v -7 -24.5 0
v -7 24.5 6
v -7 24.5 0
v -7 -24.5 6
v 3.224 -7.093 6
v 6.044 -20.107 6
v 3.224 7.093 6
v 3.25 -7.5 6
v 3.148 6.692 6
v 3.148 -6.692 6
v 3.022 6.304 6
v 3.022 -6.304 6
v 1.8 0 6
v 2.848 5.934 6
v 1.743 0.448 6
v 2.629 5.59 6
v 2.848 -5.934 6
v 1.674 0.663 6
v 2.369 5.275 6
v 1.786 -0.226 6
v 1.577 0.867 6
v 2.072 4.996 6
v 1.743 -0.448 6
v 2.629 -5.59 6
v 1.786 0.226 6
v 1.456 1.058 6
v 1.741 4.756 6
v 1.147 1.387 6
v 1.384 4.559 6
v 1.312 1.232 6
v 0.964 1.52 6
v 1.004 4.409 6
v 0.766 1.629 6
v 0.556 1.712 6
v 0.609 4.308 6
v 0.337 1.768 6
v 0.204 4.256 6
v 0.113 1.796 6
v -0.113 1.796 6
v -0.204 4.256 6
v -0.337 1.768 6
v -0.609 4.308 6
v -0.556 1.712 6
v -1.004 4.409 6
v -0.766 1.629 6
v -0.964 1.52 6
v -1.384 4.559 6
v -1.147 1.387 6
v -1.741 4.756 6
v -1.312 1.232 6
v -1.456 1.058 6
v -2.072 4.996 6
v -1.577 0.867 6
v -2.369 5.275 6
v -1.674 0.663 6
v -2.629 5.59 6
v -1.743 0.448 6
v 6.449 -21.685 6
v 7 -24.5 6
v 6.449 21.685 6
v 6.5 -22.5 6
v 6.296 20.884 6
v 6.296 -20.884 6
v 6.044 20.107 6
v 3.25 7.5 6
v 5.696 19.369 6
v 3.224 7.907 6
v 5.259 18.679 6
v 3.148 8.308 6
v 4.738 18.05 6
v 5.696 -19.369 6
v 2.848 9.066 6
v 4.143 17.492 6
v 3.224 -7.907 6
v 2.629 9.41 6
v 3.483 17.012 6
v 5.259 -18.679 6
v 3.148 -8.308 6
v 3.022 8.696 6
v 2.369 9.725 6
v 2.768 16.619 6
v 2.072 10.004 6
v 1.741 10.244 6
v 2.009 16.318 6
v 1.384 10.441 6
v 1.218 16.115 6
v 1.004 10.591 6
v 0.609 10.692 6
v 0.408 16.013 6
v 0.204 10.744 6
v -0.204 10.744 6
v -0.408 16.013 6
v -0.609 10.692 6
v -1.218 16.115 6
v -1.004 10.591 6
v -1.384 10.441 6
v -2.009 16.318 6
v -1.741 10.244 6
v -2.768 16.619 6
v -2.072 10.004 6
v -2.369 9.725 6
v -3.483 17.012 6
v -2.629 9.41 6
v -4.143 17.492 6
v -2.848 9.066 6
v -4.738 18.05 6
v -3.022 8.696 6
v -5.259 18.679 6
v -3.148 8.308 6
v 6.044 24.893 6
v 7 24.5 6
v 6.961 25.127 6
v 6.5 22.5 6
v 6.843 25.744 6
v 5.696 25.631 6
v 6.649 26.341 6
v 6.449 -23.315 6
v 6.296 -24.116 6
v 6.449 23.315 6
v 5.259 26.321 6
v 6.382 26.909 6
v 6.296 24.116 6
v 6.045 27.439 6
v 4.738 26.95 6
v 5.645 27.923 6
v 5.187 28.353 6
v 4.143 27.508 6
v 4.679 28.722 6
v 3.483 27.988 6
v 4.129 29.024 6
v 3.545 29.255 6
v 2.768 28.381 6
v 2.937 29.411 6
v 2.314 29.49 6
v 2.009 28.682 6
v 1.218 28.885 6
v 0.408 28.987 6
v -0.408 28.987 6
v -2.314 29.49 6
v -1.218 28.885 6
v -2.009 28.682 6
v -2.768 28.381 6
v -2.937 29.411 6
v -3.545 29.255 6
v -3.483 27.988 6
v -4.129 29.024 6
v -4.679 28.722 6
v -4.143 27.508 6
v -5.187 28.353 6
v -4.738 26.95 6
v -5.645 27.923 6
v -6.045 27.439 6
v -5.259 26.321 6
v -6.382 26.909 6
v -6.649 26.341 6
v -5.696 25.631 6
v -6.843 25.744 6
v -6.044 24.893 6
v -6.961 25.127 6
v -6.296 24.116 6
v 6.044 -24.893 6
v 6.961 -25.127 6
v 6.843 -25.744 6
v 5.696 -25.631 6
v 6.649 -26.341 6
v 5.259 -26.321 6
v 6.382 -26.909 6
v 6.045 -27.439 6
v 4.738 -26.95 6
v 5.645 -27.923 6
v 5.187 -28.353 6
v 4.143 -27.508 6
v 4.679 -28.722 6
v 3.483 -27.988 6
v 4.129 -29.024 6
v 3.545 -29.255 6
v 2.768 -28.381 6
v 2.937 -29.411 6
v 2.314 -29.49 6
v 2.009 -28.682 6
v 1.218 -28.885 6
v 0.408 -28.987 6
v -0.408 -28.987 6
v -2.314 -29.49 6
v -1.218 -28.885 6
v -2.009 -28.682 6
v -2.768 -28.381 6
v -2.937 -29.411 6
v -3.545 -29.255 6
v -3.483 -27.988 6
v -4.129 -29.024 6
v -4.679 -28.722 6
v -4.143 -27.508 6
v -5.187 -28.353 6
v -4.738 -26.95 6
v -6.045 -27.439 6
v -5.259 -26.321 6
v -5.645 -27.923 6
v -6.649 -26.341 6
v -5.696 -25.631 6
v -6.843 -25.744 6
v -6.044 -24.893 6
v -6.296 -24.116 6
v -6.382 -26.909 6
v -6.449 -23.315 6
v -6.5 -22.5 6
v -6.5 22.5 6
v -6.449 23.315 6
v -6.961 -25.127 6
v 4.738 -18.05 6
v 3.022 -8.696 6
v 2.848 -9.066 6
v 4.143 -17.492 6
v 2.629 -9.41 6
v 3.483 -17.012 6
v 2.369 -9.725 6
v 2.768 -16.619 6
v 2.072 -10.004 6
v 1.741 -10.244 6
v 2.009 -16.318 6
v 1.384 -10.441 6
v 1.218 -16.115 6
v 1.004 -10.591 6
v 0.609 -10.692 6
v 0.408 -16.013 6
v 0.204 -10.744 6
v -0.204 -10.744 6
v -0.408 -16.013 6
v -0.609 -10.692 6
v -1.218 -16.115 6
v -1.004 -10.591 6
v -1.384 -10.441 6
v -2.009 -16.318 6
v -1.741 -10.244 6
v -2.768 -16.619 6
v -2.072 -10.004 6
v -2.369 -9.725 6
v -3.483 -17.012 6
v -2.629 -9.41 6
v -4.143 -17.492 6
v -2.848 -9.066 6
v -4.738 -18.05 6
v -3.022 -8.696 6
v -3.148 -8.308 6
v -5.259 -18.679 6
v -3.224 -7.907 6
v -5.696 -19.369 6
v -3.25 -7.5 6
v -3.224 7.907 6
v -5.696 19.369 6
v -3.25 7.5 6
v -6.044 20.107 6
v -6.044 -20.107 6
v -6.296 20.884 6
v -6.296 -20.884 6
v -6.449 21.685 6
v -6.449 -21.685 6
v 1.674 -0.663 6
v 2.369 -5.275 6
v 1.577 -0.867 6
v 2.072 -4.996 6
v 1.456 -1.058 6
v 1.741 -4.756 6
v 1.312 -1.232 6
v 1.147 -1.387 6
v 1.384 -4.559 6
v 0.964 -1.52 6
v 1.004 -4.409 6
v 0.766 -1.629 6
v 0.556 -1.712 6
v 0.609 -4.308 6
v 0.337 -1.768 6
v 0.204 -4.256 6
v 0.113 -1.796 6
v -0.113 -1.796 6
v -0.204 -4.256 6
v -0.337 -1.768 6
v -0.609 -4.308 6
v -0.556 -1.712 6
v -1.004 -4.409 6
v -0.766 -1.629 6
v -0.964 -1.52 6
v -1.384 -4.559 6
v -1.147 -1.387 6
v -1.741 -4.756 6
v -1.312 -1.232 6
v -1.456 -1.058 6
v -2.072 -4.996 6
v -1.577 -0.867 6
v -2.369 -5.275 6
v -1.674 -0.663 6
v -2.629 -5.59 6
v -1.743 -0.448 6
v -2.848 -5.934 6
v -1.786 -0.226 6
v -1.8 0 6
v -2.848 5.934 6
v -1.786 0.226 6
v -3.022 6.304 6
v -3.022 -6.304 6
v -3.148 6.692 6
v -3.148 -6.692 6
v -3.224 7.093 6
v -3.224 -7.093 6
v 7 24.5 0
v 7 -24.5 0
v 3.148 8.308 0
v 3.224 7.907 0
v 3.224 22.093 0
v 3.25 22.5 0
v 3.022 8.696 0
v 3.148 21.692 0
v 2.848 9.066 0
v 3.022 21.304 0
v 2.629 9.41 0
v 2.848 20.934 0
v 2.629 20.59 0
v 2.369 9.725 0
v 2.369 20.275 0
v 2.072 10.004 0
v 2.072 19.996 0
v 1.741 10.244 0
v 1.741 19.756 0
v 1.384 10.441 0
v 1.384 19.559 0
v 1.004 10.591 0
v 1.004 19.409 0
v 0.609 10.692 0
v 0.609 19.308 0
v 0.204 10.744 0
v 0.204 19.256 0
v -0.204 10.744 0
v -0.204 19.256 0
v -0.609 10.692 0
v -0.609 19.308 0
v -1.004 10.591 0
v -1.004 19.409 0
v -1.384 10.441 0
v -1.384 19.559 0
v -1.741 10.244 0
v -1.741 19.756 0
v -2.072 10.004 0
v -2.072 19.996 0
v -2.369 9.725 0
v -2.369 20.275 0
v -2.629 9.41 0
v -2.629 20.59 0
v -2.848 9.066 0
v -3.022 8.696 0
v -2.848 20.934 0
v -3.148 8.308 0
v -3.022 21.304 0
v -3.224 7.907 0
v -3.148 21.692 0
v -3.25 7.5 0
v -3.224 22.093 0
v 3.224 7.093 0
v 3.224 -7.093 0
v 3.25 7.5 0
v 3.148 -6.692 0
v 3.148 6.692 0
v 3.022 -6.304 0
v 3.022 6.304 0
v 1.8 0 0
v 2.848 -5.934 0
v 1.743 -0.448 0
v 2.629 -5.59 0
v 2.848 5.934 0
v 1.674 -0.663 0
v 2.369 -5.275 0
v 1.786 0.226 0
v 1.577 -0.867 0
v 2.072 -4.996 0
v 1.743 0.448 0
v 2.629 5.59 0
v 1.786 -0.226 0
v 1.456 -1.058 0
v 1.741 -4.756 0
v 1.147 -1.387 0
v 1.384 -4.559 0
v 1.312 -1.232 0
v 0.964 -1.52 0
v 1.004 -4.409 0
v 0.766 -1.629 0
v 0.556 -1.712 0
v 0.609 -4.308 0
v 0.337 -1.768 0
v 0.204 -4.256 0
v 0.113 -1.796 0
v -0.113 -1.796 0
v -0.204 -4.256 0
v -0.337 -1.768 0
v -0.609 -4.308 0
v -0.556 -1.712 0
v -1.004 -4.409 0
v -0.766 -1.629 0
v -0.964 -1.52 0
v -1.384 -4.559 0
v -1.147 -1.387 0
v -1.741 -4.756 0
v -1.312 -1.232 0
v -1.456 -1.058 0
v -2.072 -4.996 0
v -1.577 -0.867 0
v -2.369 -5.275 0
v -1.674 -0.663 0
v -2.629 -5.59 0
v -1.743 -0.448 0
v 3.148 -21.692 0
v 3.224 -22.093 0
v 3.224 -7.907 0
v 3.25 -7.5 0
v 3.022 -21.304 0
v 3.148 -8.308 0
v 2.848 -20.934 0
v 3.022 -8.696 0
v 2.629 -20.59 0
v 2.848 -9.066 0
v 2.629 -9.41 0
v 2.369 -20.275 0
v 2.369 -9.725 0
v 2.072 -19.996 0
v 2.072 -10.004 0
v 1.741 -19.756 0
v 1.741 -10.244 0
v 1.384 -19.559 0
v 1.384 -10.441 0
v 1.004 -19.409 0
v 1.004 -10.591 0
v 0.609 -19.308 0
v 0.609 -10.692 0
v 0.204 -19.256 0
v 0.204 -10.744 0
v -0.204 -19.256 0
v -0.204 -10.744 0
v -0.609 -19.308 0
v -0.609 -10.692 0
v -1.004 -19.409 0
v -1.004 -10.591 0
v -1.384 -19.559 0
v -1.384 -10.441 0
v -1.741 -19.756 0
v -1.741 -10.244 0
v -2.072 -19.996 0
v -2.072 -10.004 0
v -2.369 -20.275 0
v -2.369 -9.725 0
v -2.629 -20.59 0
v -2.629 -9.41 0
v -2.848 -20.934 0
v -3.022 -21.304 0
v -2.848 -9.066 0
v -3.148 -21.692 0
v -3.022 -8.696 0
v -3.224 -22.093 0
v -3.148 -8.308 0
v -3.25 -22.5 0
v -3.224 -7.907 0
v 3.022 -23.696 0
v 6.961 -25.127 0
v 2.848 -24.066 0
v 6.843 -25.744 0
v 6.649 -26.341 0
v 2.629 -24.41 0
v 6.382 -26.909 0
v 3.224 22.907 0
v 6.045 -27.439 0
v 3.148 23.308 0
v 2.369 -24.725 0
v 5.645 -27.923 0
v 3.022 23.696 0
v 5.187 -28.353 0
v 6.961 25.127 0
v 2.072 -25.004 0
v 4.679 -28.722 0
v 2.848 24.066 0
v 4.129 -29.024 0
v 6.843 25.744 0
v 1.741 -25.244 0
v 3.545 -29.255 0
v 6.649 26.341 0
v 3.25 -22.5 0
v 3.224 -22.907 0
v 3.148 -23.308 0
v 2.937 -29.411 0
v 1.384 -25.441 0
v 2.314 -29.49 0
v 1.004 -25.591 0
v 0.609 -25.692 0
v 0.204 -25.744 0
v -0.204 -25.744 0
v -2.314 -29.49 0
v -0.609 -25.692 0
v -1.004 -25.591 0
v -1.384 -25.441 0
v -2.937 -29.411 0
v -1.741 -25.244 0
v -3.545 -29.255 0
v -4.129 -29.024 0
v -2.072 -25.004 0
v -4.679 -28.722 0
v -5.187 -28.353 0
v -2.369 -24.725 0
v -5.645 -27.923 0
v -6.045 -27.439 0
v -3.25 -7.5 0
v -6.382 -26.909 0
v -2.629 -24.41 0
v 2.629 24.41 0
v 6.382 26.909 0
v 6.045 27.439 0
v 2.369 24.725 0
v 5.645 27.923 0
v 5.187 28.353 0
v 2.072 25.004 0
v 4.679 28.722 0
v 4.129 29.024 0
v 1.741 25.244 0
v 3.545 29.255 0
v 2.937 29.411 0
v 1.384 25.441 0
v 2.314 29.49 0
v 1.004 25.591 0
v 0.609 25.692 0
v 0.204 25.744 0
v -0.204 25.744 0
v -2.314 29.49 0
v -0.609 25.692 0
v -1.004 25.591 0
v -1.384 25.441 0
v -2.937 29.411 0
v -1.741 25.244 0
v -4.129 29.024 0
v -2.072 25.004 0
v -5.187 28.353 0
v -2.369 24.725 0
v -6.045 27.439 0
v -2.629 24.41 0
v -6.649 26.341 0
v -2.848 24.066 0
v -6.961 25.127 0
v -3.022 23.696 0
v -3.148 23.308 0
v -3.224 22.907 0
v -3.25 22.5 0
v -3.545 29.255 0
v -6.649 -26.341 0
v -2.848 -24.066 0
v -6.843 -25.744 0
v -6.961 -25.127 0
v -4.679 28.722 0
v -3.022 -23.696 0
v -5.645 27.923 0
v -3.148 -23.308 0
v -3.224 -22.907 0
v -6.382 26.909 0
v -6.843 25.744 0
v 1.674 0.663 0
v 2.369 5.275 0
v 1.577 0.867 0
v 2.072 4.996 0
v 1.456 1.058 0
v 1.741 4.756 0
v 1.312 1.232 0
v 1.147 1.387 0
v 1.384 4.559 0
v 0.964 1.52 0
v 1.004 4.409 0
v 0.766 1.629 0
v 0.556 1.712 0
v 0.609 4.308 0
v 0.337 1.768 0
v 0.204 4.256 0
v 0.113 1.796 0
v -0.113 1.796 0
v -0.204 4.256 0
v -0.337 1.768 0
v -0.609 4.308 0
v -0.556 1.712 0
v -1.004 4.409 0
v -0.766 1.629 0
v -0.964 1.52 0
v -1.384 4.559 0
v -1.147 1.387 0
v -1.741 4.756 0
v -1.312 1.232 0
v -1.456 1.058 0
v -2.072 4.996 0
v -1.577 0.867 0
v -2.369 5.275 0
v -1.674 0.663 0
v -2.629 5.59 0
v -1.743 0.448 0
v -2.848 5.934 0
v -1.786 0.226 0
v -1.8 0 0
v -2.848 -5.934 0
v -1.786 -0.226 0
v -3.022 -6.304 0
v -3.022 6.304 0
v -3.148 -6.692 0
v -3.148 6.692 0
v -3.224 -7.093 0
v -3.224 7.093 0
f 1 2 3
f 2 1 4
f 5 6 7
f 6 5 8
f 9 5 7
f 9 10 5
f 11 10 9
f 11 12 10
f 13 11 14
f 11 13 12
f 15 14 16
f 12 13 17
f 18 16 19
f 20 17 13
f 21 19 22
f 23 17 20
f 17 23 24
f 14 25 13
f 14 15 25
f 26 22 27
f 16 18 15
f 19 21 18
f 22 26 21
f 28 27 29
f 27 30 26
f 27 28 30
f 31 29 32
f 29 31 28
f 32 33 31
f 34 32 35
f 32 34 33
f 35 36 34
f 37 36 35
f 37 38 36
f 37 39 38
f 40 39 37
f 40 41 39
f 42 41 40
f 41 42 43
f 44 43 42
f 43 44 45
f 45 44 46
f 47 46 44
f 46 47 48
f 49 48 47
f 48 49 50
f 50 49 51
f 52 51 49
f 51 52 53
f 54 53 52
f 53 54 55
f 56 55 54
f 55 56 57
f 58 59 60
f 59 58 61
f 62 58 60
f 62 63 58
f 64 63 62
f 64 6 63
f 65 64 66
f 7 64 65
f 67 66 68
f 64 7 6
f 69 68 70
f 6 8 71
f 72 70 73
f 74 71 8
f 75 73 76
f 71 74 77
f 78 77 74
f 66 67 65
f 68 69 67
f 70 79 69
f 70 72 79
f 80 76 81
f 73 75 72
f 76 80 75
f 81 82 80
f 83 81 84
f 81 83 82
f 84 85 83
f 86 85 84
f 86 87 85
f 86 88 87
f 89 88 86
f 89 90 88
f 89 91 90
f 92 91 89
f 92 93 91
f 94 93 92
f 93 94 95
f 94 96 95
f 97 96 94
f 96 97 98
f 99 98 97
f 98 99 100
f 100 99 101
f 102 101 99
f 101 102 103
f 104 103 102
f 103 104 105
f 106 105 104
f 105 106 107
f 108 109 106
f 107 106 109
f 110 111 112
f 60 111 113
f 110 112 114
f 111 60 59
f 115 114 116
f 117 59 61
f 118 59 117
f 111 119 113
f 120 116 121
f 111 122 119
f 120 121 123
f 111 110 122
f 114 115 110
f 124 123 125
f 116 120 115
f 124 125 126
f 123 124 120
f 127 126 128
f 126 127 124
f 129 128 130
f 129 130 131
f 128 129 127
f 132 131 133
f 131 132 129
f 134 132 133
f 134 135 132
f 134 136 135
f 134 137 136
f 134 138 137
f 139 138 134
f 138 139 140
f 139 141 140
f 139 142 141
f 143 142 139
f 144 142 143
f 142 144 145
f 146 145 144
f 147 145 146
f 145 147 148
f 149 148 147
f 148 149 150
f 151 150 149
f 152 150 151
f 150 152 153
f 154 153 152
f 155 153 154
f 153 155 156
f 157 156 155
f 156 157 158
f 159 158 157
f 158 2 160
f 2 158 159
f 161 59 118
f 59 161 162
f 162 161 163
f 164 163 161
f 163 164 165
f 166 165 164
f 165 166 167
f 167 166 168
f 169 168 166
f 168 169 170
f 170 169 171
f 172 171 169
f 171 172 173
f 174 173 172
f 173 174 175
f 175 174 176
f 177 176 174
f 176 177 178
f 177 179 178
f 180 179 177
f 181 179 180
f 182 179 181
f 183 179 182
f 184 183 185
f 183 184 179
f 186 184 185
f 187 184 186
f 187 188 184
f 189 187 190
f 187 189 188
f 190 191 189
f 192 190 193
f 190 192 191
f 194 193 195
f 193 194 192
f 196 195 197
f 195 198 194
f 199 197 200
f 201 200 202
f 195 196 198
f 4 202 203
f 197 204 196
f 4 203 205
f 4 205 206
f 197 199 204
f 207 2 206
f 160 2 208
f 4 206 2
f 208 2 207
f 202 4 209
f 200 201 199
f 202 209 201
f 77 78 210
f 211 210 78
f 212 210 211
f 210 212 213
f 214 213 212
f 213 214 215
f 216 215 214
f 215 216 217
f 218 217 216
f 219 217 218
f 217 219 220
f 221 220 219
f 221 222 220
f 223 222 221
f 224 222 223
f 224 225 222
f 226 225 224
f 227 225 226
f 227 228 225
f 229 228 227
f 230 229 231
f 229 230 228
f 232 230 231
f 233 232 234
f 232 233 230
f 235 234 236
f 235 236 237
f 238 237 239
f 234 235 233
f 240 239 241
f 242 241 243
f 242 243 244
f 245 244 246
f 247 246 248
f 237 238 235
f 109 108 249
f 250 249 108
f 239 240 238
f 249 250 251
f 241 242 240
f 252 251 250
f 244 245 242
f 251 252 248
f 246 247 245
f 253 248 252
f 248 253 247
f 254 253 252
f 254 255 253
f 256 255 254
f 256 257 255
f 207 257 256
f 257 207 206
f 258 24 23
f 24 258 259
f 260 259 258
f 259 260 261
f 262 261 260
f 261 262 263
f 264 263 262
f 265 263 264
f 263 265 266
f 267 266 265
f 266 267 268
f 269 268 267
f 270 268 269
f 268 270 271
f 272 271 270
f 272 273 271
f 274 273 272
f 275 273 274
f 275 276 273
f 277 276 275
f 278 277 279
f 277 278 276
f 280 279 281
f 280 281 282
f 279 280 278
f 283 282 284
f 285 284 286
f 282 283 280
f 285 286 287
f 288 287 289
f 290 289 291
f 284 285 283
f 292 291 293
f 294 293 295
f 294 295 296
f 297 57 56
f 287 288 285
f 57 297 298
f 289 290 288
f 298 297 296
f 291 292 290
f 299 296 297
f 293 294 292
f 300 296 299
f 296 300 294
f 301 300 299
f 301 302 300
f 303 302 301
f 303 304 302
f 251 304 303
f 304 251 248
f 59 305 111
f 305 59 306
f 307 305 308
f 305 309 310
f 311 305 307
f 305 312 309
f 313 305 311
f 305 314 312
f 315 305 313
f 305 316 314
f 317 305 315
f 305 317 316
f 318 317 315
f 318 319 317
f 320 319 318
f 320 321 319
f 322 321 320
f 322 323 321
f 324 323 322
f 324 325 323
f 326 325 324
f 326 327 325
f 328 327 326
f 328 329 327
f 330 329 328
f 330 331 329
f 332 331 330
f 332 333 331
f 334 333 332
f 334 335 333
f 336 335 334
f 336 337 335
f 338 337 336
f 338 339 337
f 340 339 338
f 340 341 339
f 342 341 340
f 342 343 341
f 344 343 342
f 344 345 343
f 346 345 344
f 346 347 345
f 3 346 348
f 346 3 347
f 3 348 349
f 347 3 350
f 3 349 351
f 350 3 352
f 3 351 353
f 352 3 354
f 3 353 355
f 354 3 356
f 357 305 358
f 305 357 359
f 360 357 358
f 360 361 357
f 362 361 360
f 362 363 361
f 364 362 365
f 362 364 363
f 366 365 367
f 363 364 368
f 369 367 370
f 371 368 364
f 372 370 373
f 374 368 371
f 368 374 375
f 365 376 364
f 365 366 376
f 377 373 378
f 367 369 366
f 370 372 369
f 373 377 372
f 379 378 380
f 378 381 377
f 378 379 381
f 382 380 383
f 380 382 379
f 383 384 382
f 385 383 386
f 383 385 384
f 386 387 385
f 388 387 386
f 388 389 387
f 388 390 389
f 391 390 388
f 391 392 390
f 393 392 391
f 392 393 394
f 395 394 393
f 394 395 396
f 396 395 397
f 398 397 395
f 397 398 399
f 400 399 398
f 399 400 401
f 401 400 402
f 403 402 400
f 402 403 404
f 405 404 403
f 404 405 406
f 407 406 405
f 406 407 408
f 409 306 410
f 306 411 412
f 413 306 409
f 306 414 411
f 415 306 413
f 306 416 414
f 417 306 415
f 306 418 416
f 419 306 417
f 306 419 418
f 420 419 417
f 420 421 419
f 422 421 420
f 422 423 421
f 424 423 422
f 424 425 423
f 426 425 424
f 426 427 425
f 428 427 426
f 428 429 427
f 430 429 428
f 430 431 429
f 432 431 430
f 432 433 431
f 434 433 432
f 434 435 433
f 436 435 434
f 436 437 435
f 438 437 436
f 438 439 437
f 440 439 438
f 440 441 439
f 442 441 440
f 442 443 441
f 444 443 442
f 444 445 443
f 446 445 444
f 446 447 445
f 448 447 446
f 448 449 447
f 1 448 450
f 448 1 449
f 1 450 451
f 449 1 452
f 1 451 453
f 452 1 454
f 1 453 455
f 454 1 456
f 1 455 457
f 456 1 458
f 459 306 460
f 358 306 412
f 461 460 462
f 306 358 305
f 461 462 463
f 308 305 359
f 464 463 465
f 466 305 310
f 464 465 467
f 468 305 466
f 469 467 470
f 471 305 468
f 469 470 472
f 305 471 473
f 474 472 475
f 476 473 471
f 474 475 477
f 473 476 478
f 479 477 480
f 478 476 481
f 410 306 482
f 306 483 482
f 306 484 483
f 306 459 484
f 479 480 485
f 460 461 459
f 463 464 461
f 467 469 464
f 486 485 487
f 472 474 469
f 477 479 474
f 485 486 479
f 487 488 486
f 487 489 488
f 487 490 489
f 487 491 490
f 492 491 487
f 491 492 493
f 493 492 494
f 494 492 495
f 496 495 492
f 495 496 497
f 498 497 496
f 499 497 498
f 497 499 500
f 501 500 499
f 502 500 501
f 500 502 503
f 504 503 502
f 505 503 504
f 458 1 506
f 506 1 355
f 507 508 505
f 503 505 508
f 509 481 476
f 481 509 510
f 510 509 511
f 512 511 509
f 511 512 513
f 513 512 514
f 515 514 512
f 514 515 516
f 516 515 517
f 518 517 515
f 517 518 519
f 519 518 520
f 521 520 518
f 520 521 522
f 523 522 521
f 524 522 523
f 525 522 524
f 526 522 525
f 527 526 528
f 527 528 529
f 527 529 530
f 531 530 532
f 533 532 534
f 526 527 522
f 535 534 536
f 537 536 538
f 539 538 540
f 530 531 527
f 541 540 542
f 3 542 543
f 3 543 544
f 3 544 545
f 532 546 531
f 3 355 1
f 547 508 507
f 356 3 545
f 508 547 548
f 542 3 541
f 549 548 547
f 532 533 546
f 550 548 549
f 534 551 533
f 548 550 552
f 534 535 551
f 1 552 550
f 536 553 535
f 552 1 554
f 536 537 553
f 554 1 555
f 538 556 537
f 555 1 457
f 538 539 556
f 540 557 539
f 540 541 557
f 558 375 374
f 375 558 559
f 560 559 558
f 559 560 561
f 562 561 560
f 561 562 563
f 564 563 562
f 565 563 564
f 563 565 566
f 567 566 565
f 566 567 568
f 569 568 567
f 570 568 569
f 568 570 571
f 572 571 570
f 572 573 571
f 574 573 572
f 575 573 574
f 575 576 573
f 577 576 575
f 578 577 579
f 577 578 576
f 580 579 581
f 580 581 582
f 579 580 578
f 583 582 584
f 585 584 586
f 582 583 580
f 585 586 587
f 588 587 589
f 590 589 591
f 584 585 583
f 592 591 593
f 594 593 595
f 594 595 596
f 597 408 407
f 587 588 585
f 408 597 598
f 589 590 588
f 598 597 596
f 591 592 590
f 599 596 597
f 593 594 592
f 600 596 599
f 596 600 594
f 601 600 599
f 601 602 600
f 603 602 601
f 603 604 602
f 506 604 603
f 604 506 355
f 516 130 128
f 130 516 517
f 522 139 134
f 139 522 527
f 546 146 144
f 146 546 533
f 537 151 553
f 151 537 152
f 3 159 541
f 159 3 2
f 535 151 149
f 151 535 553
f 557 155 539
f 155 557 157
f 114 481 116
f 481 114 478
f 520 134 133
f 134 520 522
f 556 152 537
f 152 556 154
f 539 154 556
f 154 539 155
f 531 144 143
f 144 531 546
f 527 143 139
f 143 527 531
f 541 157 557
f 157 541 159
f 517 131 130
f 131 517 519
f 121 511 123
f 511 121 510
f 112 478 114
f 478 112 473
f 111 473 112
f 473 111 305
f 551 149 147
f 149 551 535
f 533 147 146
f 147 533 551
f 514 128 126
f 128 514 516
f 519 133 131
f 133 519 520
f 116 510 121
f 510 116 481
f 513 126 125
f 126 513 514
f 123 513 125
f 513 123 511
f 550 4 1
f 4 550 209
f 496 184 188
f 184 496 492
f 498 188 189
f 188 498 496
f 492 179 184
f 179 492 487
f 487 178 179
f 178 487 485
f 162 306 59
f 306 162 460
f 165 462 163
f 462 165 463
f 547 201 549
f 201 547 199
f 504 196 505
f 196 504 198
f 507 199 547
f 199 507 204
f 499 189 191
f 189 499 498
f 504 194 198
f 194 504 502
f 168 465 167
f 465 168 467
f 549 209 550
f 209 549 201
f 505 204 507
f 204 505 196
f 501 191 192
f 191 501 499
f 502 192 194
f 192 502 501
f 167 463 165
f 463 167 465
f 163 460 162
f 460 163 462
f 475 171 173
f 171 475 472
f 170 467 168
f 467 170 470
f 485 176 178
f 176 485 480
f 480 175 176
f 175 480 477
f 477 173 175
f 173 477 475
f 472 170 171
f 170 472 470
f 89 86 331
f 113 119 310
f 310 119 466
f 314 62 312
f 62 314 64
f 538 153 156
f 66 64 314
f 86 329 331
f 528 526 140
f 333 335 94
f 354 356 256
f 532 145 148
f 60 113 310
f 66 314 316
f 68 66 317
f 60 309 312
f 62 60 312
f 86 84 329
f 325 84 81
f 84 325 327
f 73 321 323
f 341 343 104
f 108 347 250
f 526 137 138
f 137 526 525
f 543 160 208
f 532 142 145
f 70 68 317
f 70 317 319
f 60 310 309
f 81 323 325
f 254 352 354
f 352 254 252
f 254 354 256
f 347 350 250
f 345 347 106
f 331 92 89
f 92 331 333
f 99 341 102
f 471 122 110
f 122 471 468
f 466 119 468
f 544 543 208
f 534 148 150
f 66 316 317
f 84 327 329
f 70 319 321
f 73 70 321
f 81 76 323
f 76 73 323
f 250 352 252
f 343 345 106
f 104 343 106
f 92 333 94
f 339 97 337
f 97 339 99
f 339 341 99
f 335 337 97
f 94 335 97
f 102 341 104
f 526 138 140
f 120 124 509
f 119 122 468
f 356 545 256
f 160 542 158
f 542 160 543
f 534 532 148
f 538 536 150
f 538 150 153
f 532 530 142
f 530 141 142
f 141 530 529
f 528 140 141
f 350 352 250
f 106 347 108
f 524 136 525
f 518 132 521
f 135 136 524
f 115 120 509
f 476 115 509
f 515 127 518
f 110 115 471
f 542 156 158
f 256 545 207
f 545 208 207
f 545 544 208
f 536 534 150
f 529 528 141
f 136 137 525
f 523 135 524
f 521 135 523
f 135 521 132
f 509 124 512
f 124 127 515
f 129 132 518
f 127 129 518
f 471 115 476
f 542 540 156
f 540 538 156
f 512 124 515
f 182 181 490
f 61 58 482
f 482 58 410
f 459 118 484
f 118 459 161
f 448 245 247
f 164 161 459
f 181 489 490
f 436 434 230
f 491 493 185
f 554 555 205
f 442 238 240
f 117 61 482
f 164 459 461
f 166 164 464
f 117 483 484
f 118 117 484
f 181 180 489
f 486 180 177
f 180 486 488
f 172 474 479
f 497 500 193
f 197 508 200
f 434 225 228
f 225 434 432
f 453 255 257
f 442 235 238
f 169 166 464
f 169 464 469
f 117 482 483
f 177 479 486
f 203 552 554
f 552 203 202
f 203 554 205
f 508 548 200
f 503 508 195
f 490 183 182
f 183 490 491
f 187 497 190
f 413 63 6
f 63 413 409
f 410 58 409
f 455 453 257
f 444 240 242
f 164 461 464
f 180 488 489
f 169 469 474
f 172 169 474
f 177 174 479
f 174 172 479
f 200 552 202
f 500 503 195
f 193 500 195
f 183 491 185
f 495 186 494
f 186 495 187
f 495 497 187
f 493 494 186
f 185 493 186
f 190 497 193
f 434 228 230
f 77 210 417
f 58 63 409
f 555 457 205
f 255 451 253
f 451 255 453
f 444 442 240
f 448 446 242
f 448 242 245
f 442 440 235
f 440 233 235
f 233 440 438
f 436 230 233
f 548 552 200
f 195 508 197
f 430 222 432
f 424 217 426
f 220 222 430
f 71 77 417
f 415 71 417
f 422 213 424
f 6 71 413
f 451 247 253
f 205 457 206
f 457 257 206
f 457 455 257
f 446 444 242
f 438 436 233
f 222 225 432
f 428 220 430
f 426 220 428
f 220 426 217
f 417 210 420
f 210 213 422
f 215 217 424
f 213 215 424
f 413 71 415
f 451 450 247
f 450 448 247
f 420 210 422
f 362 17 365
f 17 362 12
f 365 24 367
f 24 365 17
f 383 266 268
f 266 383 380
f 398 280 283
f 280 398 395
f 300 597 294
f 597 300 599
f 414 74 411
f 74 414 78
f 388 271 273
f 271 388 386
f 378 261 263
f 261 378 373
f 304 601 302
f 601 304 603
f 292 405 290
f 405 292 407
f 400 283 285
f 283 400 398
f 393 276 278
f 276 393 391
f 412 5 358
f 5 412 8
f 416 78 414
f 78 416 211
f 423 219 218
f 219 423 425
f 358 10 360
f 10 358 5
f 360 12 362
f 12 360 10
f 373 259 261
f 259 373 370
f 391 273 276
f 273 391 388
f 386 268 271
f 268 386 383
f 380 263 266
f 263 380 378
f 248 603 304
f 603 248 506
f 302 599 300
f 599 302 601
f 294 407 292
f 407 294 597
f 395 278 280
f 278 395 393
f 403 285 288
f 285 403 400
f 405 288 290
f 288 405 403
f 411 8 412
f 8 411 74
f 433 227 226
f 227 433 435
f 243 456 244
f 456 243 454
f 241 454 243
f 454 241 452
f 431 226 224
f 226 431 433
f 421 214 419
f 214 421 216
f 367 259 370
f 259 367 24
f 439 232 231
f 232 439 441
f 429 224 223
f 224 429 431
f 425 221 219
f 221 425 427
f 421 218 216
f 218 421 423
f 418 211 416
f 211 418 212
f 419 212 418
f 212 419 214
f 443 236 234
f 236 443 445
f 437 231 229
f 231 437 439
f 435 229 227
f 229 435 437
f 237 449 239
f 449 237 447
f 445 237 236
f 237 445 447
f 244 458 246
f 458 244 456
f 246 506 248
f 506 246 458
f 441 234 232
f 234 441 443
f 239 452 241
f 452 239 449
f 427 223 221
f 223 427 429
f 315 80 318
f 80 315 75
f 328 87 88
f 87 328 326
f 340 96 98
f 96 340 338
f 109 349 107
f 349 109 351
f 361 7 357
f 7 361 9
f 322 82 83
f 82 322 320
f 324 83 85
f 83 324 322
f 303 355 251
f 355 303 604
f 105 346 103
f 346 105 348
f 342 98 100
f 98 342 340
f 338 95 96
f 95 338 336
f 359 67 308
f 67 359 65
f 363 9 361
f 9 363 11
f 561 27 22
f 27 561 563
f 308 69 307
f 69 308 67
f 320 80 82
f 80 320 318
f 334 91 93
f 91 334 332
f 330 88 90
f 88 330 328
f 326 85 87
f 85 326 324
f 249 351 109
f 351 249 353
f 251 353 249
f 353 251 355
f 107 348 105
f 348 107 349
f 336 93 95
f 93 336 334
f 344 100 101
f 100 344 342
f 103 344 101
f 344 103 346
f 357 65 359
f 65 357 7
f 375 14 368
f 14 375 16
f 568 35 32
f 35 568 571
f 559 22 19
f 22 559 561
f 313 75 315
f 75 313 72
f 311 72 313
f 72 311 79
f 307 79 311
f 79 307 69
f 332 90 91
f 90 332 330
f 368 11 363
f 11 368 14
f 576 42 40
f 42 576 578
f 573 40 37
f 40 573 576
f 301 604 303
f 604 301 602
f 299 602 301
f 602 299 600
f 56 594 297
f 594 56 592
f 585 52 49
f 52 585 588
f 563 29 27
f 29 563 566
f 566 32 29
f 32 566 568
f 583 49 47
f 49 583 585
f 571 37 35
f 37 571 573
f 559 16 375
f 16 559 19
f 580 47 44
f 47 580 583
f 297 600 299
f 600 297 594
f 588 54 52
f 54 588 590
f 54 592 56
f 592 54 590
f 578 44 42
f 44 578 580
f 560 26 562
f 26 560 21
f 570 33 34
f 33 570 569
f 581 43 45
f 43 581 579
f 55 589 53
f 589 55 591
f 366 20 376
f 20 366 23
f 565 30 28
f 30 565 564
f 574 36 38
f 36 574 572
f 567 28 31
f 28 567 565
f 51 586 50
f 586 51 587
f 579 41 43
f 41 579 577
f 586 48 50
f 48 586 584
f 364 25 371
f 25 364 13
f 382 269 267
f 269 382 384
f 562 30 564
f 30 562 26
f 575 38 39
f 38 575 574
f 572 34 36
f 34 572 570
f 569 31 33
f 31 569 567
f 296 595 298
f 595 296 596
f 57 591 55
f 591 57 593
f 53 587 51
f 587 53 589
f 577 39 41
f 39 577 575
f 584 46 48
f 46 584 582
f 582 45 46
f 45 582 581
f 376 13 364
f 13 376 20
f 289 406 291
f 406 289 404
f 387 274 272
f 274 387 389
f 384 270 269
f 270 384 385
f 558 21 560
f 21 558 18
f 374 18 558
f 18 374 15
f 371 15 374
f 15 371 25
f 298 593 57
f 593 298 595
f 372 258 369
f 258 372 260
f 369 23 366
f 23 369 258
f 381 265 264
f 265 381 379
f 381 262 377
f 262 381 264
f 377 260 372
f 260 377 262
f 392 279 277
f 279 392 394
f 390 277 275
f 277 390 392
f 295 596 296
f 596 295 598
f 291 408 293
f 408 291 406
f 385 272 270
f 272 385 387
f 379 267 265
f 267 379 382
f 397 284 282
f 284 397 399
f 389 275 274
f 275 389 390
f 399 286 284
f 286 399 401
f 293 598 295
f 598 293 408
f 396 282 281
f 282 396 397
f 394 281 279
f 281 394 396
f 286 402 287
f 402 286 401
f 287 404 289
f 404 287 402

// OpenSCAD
$fn = 50;


difference() {
	union() {
		hull() {
			translate(v = [-2.0000000000, 9.5000000000, 0]) {
				cylinder(h = 6, r = 5);
			}
			translate(v = [2.0000000000, 9.5000000000, 0]) {
				cylinder(h = 6, r = 5);
			}
			translate(v = [-2.0000000000, -9.5000000000, 0]) {
				cylinder(h = 6, r = 5);
			}
			translate(v = [2.0000000000, -9.5000000000, 0]) {
				cylinder(h = 6, r = 5);
			}
		}
		translate(v = [0.0000000000, 15.0000000000, 0]) {
			hull() {
				translate(v = [-2.0000000000, 9.5000000000, 0]) {
					cylinder(h = 6, r = 5);
				}
				translate(v = [2.0000000000, 9.5000000000, 0]) {
					cylinder(h = 6, r = 5);
				}
				translate(v = [-2.0000000000, -9.5000000000, 0]) {
					cylinder(h = 6, r = 5);
				}
				translate(v = [2.0000000000, -9.5000000000, 0]) {
					cylinder(h = 6, r = 5);
				}
			}
		}
		translate(v = [0.0000000000, 15.0000000000, 0]) {
			hull() {
				translate(v = [-2.0000000000, 9.5000000000, 0]) {
					cylinder(h = 6, r = 5);
				}
				translate(v = [2.0000000000, 9.5000000000, 0]) {
					cylinder(h = 6, r = 5);
				}
				translate(v = [-2.0000000000, -9.5000000000, 0]) {
					cylinder(h = 6, r = 5);
				}
				translate(v = [2.0000000000, -9.5000000000, 0]) {
					cylinder(h = 6, r = 5);
				}
			}
		}
		translate(v = [0.0000000000, -15.0000000000, 0]) {
			hull() {
				translate(v = [-2.0000000000, 9.5000000000, 0]) {
					cylinder(h = 6, r = 5);
				}
				translate(v = [2.0000000000, 9.5000000000, 0]) {
					cylinder(h = 6, r = 5);
				}
				translate(v = [-2.0000000000, -9.5000000000, 0]) {
					cylinder(h = 6, r = 5);
				}
				translate(v = [2.0000000000, -9.5000000000, 0]) {
					cylinder(h = 6, r = 5);
				}
			}
		}
		translate(v = [0.0000000000, -15.0000000000, 0]) {
			hull() {
				translate(v = [-2.0000000000, 9.5000000000, 0]) {
					cylinder(h = 6, r = 5);
				}
				translate(v = [2.0000000000, 9.5000000000, 0]) {
					cylinder(h = 6, r = 5);
				}
				translate(v = [-2.0000000000, -9.5000000000, 0]) {
					cylinder(h = 6, r = 5);
				}
				translate(v = [2.0000000000, -9.5000000000, 0]) {
					cylinder(h = 6, r = 5);
				}
			}
		}
	}
	union() {
		translate(v = [0.0000000000, 22.5000000000, 6]) {
			rotate(a = [0, 0, 0]) {
				difference() {
					union() {
						#translate(v = [0, 0, -6.0000000000]) {
							cylinder(h = 6, r = 2.2500000000);
						}
						#translate(v = [0, 0, -6]) {
							cylinder(h = 6, r1 = 3.2500000000, r2 = 6.5000000000);
						}
						#translate(v = [0, 0, -6.0000000000]) {
							cylinder(h = 6, r = 3.2500000000);
						}
						#translate(v = [0, 0, -6.0000000000]) {
							cylinder(h = 6, r = 2.2500000000);
						}
					}
					union();
				}
			}
		}
		translate(v = [0.0000000000, 22.5000000000, 6]) {
			rotate(a = [0, 0, 0]) {
				difference() {
					union() {
						#translate(v = [0, 0, -6.0000000000]) {
							cylinder(h = 6, r = 2.2500000000);
						}
						#translate(v = [0, 0, -6]) {
							cylinder(h = 6, r1 = 3.2500000000, r2 = 6.5000000000);
						}
						#translate(v = [0, 0, -6.0000000000]) {
							cylinder(h = 6, r = 3.2500000000);
						}
						#translate(v = [0, 0, -6.0000000000]) {
							cylinder(h = 6, r = 2.2500000000);
						}
					}
					union();
				}
			}
		}
		translate(v = [0.0000000000, -22.5000000000, 6]) {
			rotate(a = [0, 0, 0]) {
				difference() {
					union() {
						#translate(v = [0, 0, -6.0000000000]) {
							cylinder(h = 6, r = 2.2500000000);
						}
						#translate(v = [0, 0, -6]) {
							cylinder(h = 6, r1 = 3.2500000000, r2 = 6.5000000000);
						}
						#translate(v = [0, 0, -6.0000000000]) {
							cylinder(h = 6, r = 3.2500000000);
						}
						#translate(v = [0, 0, -6.0000000000]) {
							cylinder(h = 6, r = 2.2500000000);
						}
					}
					union();
				}
			}
		}
		translate(v = [0.0000000000, -22.5000000000, 6]) {
			rotate(a = [0, 0, 0]) {
				difference() {
					union() {
						#translate(v = [0, 0, -6.0000000000]) {
							cylinder(h = 6, r = 2.2500000000);
						}
						#translate(v = [0, 0, -6]) {
							cylinder(h = 6, r1 = 3.2500000000, r2 = 6.5000000000);
						}
						#translate(v = [0, 0, -6.0000000000]) {
							cylinder(h = 6, r = 3.2500000000);
						}
						#translate(v = [0, 0, -6.0000000000]) {
							cylinder(h = 6, r = 2.2500000000);
						}
					}
					union();
				}
			}
		}
		translate(v = [0.0000000000, -7.5000000000, 0]) {
			translate(v = [0, 0, -100]) {
				cylinder(h = 200, r = 3.2500000000);
			}
		}
		translate(v = [0.0000000000, 7.5000000000, 0]) {
			translate(v = [0, 0, -100]) {
				cylinder(h = 200, r = 3.2500000000);
			}
		}
		translate(v = [0.0000000000, -7.5000000000, 0]) {
			translate(v = [0, 0, -100]) {
				cylinder(h = 200, r = 1.8000000000);
			}
		}
		translate(v = [0, 0, -100]) {
			cylinder(h = 200, r = 1.8000000000);
		}
		translate(v = [0.0000000000, 7.5000000000, 0]) {
			translate(v = [0, 0, -100]) {
				cylinder(h = 200, r = 1.8000000000);
			}
		}
	}
}
